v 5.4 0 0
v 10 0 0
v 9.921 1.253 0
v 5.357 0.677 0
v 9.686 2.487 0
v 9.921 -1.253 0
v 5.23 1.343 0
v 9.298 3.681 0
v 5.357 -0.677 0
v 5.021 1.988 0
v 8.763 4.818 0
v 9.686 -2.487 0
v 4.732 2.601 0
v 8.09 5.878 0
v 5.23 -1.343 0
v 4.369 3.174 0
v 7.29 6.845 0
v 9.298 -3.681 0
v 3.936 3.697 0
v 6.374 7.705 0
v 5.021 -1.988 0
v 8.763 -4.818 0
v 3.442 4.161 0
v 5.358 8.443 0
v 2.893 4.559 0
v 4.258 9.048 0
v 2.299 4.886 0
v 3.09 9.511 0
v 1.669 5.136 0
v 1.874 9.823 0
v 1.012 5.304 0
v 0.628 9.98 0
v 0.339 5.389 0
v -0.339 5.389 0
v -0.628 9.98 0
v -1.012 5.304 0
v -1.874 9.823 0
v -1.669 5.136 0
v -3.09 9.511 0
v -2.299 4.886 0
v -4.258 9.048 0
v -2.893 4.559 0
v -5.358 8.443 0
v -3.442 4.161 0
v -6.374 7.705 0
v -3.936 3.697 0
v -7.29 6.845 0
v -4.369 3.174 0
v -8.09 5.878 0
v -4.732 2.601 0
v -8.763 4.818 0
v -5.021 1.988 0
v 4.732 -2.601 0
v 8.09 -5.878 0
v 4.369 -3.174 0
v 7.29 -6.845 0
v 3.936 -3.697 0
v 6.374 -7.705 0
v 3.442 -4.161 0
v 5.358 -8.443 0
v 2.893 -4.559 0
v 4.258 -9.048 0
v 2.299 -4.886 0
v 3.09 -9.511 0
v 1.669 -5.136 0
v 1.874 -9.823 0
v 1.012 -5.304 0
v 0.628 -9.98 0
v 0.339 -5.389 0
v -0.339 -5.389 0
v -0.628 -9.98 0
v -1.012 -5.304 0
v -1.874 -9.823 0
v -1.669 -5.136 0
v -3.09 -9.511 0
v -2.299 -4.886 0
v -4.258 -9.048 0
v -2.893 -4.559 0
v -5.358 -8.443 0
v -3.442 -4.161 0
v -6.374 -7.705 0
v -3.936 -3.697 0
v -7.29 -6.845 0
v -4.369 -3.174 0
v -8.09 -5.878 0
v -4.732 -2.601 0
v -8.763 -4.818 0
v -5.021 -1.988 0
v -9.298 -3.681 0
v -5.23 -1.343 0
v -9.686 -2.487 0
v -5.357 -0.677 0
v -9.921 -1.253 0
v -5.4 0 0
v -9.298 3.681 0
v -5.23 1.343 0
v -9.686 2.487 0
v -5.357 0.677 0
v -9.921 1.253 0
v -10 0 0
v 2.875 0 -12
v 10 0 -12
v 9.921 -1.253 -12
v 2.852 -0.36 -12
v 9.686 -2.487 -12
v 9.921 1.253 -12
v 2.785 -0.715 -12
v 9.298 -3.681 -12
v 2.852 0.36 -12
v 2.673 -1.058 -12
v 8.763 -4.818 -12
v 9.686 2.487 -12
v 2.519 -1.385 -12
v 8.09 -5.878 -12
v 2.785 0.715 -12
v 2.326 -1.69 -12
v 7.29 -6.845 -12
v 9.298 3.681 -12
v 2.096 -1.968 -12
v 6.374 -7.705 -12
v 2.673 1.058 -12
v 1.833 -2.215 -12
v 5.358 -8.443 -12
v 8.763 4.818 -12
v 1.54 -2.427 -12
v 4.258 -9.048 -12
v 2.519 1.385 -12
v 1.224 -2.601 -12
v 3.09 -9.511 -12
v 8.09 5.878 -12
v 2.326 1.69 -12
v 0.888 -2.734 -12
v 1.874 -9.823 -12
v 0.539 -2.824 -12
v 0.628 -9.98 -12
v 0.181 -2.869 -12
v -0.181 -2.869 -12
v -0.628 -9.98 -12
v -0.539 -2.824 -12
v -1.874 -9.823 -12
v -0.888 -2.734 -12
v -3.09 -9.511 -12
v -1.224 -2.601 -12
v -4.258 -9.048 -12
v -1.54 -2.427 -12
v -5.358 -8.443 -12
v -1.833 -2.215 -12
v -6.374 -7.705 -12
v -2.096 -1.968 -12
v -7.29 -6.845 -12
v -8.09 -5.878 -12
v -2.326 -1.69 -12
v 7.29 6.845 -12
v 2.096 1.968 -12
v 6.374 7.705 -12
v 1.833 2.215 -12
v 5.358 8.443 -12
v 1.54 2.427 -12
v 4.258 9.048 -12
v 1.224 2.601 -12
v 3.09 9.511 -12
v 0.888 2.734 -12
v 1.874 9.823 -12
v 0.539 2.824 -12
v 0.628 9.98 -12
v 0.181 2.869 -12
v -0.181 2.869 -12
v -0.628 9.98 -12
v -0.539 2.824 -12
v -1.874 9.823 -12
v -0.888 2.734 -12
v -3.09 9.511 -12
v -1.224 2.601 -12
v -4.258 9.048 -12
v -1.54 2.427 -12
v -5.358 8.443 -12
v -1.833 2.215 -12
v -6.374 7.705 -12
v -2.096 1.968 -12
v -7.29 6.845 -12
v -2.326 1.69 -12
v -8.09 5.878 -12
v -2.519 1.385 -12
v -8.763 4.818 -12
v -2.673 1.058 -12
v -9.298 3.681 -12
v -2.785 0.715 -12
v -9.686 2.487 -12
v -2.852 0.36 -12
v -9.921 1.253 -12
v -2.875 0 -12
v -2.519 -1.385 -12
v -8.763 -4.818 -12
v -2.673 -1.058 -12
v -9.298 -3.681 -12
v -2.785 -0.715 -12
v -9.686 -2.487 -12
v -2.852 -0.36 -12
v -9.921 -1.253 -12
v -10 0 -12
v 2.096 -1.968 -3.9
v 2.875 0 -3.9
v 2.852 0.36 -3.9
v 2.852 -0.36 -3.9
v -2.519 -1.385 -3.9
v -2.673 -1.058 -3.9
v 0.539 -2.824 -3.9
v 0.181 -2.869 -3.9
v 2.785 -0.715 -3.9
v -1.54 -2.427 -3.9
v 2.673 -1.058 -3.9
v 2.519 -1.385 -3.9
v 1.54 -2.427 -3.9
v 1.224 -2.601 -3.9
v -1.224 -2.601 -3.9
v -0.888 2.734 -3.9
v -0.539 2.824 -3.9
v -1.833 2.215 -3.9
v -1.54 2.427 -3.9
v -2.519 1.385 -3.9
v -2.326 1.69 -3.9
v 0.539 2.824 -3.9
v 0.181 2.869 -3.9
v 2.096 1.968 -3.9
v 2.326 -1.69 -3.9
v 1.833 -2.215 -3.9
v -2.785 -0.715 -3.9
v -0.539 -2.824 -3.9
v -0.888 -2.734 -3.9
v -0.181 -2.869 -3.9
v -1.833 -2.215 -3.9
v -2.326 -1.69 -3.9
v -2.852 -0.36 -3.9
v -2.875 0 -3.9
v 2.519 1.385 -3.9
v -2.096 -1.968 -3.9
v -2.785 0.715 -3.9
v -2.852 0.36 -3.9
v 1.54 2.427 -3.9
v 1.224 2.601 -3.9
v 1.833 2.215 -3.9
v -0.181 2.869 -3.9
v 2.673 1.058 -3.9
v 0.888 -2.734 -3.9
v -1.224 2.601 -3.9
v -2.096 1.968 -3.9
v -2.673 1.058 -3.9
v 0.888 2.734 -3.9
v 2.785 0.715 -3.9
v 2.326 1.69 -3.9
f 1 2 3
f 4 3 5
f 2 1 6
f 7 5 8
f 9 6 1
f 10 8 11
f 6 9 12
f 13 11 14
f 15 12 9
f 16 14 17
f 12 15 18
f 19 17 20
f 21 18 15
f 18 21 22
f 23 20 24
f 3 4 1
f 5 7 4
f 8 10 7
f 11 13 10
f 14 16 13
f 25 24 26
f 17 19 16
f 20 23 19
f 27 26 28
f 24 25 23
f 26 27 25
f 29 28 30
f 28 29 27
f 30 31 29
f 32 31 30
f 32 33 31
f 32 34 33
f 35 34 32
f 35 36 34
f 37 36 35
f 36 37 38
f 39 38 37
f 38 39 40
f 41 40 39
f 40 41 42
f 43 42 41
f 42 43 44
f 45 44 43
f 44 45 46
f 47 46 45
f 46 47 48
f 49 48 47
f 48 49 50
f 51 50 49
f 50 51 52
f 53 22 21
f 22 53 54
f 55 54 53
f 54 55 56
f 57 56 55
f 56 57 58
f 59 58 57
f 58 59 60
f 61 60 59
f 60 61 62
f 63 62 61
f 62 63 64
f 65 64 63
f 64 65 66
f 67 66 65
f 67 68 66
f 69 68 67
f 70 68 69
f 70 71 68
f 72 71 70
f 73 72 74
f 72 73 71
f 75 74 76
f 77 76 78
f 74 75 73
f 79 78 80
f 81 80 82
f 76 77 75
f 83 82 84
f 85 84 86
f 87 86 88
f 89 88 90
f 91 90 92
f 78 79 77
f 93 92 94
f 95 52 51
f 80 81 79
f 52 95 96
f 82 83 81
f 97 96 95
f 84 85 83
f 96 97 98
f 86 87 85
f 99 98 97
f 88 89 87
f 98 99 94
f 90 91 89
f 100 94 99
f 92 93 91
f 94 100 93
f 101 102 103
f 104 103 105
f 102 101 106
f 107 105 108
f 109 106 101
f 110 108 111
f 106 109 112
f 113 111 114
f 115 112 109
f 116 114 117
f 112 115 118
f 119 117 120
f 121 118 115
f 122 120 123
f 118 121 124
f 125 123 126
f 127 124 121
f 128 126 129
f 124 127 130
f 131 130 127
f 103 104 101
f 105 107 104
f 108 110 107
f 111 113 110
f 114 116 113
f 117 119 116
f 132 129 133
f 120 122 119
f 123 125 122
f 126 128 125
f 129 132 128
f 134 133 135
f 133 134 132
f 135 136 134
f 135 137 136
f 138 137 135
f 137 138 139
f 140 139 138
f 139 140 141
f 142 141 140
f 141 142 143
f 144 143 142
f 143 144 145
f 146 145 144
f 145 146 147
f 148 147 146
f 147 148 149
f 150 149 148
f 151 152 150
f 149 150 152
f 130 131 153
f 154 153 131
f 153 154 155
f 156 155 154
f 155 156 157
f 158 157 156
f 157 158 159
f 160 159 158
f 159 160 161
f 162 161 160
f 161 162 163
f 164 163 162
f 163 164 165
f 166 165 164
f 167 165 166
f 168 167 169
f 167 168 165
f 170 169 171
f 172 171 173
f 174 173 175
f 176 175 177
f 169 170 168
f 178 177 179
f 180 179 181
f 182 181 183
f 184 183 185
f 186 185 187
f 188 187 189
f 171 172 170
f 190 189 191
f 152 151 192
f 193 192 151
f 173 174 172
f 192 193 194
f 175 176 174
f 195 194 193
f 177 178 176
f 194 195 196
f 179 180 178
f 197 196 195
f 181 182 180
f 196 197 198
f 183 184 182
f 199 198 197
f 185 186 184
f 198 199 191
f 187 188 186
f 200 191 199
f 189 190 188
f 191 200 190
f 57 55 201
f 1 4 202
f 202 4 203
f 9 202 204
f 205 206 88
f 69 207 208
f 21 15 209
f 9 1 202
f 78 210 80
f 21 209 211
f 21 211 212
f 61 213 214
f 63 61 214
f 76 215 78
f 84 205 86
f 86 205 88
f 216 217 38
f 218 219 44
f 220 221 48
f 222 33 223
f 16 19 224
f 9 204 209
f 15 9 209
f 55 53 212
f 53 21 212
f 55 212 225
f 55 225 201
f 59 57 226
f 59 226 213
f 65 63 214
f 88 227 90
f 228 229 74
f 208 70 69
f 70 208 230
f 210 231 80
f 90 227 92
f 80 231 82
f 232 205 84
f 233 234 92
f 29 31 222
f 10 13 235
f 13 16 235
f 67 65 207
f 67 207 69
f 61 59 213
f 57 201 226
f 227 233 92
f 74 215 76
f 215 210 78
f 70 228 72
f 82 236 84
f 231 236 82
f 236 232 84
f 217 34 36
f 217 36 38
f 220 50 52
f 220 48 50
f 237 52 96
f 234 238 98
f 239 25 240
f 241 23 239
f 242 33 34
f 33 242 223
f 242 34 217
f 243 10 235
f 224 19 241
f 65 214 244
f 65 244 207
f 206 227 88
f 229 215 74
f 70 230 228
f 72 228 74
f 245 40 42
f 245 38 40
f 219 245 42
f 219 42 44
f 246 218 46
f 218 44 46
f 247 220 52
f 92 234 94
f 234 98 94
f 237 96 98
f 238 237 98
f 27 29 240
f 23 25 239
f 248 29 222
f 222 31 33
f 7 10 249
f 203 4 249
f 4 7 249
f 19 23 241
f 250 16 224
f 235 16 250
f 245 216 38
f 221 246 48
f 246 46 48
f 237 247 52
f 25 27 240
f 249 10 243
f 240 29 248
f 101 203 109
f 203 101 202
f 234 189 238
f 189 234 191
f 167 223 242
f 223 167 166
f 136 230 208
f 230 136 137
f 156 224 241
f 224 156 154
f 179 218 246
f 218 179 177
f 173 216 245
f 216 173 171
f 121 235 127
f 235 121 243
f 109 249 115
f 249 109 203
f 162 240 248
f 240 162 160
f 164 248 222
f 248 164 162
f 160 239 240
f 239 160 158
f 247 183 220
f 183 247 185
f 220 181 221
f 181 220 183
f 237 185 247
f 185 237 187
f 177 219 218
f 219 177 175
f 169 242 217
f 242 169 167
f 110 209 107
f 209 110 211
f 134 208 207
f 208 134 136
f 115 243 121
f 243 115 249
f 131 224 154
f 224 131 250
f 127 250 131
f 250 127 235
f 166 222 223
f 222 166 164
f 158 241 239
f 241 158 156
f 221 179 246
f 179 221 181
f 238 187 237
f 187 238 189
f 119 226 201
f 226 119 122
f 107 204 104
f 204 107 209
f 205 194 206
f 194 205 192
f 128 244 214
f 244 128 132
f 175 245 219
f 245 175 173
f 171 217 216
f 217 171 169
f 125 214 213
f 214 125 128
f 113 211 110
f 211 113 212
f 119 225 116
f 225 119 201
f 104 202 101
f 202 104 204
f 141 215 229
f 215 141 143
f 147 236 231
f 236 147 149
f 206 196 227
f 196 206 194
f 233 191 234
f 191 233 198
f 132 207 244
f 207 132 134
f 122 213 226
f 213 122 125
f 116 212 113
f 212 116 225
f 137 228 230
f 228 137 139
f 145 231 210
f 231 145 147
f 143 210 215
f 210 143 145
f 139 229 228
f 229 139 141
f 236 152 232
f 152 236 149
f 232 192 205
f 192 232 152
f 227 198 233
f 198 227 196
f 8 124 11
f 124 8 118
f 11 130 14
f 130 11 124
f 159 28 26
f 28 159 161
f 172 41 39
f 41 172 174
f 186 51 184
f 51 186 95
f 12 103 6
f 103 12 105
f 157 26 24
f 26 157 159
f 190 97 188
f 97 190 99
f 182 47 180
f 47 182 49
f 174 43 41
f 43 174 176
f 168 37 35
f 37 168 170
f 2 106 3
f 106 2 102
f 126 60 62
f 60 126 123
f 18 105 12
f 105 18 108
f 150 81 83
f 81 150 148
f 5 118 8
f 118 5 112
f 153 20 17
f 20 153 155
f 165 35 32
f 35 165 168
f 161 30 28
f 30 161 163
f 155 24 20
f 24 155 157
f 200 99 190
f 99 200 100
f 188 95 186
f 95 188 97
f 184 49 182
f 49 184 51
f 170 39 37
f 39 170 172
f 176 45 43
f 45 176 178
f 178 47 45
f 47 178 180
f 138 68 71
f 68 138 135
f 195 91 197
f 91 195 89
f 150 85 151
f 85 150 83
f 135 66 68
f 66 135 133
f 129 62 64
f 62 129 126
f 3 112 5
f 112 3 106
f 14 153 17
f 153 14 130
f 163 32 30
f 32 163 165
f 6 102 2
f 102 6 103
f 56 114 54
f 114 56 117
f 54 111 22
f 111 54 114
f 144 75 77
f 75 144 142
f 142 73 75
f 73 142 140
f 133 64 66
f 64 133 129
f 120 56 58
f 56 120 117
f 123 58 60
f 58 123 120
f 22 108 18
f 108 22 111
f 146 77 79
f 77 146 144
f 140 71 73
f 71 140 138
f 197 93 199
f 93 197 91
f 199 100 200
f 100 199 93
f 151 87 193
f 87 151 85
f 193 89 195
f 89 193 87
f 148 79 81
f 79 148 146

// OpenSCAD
$fn = 50;


difference() {
	union() {
		translate(v = [0, 0, -12.0000000000]) {
			cylinder(h = 12, r = 10.0000000000);
		}
		cylinder(h = 0, r = 16.0000000000);
	}
	union() {
		translate(v = [0, 0, 0]) {
			rotate(a = [0, 0, 0]) {
				difference() {
					union() {
						#translate(v = [0, 0, -12.0000000000]) {
							cylinder(h = 12, r = 2.6000000000);
						}
						#translate(v = [0, 0, -3.9000000000]) {
							cylinder(h = 3.9000000000, r1 = 2.8750000000, r2 = 5.4000000000);
						}
						#translate(v = [0, 0, -12.0000000000]) {
							cylinder(h = 12, r = 2.8750000000);
						}
						#translate(v = [0, 0, -12.0000000000]) {
							cylinder(h = 12, r = 2.6000000000);
						}
					}
					union();
				}
			}
		}
	}
}
